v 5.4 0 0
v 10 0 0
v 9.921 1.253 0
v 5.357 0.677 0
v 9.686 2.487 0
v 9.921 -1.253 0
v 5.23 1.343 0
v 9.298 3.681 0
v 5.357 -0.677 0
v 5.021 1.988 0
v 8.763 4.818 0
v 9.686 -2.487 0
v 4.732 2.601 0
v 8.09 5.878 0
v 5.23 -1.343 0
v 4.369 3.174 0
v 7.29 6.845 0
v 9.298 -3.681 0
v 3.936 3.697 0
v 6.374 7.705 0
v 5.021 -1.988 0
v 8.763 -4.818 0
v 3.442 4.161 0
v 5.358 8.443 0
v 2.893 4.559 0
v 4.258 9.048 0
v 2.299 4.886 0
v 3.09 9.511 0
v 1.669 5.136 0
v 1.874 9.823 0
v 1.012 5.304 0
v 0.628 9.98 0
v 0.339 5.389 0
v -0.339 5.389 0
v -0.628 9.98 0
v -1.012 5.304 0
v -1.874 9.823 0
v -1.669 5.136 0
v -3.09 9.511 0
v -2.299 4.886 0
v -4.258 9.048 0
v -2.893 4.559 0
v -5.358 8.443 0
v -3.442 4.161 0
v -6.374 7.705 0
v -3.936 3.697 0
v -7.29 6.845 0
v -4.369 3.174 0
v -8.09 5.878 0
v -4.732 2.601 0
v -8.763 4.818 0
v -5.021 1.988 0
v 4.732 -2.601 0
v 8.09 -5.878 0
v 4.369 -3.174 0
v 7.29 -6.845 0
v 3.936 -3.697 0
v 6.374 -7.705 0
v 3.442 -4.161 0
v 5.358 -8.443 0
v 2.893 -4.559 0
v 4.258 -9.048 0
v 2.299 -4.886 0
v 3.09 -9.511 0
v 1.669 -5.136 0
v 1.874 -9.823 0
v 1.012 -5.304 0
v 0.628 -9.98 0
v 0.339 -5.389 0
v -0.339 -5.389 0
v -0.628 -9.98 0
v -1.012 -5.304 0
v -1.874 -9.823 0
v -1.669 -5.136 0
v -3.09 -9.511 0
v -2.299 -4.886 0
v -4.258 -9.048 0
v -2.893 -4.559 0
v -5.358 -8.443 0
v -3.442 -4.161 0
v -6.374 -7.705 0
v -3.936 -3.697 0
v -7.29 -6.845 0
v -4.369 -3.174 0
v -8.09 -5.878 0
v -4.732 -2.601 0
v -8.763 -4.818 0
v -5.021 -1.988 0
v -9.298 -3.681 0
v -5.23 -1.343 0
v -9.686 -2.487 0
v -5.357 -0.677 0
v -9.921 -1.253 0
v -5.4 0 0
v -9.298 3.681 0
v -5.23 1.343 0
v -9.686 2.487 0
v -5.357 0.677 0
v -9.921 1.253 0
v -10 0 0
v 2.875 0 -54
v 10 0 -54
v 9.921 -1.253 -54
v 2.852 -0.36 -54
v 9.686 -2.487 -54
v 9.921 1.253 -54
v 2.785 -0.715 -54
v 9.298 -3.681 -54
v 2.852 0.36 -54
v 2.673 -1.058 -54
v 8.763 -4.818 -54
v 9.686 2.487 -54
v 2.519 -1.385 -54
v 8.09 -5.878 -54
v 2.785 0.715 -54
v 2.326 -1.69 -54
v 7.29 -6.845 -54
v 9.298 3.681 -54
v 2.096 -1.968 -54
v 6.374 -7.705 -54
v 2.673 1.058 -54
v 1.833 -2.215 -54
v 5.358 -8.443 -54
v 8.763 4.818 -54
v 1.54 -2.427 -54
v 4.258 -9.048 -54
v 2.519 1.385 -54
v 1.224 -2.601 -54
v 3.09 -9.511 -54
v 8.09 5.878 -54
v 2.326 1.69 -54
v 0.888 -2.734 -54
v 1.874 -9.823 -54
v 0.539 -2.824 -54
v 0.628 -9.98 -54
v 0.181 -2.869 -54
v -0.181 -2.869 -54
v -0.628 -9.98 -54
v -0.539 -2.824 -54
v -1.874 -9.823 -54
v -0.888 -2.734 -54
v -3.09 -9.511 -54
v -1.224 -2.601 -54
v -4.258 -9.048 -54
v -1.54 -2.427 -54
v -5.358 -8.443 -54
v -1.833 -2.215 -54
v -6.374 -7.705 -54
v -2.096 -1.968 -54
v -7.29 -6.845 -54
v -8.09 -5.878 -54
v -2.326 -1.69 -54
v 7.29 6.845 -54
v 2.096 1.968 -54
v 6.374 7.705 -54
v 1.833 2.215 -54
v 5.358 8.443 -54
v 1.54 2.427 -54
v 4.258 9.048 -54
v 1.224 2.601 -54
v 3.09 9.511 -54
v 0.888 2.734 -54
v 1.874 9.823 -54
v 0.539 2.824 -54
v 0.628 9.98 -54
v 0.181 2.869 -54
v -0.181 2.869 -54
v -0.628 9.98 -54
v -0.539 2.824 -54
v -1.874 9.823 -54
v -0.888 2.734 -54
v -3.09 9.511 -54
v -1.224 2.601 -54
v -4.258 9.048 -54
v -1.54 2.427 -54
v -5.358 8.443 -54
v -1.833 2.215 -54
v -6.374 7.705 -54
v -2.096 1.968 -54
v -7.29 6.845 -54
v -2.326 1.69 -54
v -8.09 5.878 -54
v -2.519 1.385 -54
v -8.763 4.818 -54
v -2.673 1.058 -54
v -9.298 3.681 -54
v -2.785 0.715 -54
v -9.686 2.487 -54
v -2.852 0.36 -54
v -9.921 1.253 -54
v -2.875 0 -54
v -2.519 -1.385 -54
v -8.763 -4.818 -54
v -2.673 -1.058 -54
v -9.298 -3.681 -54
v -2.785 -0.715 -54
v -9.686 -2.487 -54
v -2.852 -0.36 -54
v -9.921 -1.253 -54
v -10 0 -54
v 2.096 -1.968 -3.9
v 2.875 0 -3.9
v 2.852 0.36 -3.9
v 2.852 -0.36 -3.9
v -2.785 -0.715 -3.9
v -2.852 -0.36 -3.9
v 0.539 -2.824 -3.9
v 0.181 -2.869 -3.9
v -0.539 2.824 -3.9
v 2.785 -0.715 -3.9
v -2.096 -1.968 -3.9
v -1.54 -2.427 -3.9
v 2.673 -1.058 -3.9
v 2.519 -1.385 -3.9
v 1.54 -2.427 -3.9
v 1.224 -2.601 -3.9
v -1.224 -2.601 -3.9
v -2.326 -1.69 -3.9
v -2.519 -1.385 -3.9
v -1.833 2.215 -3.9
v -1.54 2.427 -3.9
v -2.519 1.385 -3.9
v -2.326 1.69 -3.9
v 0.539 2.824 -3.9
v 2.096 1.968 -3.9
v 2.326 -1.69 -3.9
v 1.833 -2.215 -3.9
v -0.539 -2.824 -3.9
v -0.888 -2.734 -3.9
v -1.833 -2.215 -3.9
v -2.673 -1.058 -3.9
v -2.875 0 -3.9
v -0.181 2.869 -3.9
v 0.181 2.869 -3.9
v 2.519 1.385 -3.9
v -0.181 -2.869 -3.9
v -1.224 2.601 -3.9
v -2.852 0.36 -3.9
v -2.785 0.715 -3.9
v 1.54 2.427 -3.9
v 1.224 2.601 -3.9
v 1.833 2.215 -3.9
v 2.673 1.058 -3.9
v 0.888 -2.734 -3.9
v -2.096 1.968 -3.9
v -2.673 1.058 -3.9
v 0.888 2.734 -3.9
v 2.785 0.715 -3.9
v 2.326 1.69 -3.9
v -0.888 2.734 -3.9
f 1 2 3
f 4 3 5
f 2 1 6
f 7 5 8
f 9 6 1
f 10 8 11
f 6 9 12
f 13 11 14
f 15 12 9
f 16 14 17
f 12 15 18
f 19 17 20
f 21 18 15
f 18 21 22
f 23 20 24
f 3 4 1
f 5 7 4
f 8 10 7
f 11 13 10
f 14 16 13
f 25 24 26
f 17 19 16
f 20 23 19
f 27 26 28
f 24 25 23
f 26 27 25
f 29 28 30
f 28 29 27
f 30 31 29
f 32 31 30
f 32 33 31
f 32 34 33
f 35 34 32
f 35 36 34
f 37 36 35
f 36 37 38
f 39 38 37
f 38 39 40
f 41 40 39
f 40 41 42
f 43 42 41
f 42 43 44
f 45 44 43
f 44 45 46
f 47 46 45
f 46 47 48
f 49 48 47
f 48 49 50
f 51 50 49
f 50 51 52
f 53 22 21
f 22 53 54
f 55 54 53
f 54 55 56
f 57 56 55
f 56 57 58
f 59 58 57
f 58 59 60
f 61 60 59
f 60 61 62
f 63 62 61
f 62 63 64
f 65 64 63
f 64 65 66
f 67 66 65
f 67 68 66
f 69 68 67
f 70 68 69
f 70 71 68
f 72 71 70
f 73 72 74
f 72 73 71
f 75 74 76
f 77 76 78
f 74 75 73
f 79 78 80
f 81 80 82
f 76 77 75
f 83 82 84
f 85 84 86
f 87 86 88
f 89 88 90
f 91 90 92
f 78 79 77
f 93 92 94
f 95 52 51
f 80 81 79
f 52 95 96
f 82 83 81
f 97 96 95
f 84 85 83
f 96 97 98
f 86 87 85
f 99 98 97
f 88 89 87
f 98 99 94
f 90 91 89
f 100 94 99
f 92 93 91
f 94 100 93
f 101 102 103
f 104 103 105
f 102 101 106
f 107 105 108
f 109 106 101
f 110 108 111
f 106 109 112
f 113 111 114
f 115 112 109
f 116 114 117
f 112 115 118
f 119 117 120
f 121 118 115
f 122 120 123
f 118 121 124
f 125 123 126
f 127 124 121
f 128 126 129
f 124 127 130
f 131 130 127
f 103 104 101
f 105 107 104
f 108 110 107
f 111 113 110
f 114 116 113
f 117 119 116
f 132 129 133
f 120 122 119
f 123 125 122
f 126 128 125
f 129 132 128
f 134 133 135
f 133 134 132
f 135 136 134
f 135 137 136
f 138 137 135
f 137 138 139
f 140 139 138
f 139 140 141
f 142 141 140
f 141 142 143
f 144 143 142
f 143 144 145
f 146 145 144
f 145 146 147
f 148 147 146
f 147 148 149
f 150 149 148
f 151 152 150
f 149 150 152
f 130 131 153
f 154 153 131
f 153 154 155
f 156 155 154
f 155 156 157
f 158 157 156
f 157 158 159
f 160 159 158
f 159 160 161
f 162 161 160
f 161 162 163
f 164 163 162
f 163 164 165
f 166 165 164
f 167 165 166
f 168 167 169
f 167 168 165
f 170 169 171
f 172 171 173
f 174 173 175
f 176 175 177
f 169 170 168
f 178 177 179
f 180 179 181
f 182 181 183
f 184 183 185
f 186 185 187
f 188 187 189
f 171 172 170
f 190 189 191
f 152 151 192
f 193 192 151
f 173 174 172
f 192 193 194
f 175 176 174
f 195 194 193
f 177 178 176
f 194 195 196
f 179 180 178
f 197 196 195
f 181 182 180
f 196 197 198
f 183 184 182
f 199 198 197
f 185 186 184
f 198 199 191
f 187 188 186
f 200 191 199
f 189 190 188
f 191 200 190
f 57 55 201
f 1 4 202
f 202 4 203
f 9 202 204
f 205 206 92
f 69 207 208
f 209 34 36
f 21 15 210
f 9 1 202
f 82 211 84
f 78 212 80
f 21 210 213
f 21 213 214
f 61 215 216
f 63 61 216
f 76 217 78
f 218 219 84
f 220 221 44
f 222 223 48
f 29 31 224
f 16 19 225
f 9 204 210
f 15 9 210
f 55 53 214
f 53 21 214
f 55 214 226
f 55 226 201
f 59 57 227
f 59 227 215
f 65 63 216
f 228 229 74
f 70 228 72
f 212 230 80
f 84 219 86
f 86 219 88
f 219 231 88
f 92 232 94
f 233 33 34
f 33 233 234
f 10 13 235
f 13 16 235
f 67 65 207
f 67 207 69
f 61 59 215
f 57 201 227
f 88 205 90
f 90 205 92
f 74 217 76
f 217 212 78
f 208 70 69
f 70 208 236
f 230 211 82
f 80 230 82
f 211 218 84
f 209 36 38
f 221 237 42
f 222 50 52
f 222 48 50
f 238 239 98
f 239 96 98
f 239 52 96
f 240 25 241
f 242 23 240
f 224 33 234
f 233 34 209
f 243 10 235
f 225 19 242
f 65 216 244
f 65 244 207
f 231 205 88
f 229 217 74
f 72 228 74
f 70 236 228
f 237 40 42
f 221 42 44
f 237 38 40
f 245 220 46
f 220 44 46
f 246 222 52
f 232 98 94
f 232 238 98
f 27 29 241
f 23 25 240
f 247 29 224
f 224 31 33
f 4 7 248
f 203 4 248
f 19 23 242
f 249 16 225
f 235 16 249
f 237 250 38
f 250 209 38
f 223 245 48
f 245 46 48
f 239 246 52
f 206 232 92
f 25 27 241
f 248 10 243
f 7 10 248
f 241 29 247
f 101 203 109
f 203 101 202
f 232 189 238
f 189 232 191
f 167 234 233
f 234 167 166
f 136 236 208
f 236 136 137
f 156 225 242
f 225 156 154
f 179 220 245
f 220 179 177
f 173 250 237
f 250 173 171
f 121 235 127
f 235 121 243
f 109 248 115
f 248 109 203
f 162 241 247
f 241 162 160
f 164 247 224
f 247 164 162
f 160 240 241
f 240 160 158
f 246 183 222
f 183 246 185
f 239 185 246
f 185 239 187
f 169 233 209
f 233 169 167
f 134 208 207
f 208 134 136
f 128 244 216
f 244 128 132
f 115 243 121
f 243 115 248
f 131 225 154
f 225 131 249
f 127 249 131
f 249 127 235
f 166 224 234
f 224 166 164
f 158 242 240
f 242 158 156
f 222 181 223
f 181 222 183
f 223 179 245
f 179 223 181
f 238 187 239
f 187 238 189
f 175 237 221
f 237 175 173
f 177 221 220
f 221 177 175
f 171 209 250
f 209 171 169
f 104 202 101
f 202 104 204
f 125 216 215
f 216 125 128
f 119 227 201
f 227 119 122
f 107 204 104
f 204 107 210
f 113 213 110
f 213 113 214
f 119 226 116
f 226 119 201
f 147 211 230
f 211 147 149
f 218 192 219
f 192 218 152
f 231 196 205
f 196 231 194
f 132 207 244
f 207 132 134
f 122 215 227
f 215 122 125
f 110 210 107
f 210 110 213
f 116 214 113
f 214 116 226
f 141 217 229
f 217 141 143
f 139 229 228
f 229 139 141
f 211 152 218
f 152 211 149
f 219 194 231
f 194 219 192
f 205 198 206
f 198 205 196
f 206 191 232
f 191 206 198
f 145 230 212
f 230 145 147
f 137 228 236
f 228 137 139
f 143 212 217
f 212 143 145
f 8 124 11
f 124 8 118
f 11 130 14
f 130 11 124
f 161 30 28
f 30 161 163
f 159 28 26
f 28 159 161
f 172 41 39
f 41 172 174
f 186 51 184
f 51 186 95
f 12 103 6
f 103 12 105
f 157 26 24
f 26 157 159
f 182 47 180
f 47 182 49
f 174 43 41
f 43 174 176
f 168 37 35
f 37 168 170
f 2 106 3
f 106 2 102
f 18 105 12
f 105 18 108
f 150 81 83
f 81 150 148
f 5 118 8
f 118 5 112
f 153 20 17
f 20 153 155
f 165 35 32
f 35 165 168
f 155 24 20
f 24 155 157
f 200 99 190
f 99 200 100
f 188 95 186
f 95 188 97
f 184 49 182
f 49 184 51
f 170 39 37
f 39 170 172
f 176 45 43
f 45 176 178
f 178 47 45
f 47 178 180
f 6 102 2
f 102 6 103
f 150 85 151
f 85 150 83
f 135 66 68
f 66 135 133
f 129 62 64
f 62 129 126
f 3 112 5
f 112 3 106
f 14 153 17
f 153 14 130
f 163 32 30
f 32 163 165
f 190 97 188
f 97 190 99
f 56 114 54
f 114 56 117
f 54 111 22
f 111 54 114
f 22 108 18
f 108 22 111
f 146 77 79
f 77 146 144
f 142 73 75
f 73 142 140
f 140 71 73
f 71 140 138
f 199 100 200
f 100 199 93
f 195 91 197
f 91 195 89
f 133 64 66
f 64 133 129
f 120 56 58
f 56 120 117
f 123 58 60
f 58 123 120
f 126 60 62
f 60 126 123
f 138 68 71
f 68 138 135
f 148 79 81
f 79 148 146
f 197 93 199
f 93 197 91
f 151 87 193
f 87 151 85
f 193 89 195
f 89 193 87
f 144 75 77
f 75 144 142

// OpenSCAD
$fn = 50;


difference() {
	union() {
		translate(v = [0, 0, -54.0000000000]) {
			cylinder(h = 54, r = 10.0000000000);
		}
	}
	union() {
		translate(v = [0, 0, 0]) {
			rotate(a = [0, 0, 0]) {
				difference() {
					union() {
						#translate(v = [0, 0, -54.0000000000]) {
							cylinder(h = 54, r = 2.6000000000);
						}
						#translate(v = [0, 0, -3.9000000000]) {
							cylinder(h = 3.9000000000, r1 = 2.8750000000, r2 = 5.4000000000);
						}
						#translate(v = [0, 0, -54.0000000000]) {
							cylinder(h = 54, r = 2.8750000000);
						}
						#translate(v = [0, 0, -54.0000000000]) {
							cylinder(h = 54, r = 2.6000000000);
						}
					}
					union();
				}
			}
		}
	}
}
